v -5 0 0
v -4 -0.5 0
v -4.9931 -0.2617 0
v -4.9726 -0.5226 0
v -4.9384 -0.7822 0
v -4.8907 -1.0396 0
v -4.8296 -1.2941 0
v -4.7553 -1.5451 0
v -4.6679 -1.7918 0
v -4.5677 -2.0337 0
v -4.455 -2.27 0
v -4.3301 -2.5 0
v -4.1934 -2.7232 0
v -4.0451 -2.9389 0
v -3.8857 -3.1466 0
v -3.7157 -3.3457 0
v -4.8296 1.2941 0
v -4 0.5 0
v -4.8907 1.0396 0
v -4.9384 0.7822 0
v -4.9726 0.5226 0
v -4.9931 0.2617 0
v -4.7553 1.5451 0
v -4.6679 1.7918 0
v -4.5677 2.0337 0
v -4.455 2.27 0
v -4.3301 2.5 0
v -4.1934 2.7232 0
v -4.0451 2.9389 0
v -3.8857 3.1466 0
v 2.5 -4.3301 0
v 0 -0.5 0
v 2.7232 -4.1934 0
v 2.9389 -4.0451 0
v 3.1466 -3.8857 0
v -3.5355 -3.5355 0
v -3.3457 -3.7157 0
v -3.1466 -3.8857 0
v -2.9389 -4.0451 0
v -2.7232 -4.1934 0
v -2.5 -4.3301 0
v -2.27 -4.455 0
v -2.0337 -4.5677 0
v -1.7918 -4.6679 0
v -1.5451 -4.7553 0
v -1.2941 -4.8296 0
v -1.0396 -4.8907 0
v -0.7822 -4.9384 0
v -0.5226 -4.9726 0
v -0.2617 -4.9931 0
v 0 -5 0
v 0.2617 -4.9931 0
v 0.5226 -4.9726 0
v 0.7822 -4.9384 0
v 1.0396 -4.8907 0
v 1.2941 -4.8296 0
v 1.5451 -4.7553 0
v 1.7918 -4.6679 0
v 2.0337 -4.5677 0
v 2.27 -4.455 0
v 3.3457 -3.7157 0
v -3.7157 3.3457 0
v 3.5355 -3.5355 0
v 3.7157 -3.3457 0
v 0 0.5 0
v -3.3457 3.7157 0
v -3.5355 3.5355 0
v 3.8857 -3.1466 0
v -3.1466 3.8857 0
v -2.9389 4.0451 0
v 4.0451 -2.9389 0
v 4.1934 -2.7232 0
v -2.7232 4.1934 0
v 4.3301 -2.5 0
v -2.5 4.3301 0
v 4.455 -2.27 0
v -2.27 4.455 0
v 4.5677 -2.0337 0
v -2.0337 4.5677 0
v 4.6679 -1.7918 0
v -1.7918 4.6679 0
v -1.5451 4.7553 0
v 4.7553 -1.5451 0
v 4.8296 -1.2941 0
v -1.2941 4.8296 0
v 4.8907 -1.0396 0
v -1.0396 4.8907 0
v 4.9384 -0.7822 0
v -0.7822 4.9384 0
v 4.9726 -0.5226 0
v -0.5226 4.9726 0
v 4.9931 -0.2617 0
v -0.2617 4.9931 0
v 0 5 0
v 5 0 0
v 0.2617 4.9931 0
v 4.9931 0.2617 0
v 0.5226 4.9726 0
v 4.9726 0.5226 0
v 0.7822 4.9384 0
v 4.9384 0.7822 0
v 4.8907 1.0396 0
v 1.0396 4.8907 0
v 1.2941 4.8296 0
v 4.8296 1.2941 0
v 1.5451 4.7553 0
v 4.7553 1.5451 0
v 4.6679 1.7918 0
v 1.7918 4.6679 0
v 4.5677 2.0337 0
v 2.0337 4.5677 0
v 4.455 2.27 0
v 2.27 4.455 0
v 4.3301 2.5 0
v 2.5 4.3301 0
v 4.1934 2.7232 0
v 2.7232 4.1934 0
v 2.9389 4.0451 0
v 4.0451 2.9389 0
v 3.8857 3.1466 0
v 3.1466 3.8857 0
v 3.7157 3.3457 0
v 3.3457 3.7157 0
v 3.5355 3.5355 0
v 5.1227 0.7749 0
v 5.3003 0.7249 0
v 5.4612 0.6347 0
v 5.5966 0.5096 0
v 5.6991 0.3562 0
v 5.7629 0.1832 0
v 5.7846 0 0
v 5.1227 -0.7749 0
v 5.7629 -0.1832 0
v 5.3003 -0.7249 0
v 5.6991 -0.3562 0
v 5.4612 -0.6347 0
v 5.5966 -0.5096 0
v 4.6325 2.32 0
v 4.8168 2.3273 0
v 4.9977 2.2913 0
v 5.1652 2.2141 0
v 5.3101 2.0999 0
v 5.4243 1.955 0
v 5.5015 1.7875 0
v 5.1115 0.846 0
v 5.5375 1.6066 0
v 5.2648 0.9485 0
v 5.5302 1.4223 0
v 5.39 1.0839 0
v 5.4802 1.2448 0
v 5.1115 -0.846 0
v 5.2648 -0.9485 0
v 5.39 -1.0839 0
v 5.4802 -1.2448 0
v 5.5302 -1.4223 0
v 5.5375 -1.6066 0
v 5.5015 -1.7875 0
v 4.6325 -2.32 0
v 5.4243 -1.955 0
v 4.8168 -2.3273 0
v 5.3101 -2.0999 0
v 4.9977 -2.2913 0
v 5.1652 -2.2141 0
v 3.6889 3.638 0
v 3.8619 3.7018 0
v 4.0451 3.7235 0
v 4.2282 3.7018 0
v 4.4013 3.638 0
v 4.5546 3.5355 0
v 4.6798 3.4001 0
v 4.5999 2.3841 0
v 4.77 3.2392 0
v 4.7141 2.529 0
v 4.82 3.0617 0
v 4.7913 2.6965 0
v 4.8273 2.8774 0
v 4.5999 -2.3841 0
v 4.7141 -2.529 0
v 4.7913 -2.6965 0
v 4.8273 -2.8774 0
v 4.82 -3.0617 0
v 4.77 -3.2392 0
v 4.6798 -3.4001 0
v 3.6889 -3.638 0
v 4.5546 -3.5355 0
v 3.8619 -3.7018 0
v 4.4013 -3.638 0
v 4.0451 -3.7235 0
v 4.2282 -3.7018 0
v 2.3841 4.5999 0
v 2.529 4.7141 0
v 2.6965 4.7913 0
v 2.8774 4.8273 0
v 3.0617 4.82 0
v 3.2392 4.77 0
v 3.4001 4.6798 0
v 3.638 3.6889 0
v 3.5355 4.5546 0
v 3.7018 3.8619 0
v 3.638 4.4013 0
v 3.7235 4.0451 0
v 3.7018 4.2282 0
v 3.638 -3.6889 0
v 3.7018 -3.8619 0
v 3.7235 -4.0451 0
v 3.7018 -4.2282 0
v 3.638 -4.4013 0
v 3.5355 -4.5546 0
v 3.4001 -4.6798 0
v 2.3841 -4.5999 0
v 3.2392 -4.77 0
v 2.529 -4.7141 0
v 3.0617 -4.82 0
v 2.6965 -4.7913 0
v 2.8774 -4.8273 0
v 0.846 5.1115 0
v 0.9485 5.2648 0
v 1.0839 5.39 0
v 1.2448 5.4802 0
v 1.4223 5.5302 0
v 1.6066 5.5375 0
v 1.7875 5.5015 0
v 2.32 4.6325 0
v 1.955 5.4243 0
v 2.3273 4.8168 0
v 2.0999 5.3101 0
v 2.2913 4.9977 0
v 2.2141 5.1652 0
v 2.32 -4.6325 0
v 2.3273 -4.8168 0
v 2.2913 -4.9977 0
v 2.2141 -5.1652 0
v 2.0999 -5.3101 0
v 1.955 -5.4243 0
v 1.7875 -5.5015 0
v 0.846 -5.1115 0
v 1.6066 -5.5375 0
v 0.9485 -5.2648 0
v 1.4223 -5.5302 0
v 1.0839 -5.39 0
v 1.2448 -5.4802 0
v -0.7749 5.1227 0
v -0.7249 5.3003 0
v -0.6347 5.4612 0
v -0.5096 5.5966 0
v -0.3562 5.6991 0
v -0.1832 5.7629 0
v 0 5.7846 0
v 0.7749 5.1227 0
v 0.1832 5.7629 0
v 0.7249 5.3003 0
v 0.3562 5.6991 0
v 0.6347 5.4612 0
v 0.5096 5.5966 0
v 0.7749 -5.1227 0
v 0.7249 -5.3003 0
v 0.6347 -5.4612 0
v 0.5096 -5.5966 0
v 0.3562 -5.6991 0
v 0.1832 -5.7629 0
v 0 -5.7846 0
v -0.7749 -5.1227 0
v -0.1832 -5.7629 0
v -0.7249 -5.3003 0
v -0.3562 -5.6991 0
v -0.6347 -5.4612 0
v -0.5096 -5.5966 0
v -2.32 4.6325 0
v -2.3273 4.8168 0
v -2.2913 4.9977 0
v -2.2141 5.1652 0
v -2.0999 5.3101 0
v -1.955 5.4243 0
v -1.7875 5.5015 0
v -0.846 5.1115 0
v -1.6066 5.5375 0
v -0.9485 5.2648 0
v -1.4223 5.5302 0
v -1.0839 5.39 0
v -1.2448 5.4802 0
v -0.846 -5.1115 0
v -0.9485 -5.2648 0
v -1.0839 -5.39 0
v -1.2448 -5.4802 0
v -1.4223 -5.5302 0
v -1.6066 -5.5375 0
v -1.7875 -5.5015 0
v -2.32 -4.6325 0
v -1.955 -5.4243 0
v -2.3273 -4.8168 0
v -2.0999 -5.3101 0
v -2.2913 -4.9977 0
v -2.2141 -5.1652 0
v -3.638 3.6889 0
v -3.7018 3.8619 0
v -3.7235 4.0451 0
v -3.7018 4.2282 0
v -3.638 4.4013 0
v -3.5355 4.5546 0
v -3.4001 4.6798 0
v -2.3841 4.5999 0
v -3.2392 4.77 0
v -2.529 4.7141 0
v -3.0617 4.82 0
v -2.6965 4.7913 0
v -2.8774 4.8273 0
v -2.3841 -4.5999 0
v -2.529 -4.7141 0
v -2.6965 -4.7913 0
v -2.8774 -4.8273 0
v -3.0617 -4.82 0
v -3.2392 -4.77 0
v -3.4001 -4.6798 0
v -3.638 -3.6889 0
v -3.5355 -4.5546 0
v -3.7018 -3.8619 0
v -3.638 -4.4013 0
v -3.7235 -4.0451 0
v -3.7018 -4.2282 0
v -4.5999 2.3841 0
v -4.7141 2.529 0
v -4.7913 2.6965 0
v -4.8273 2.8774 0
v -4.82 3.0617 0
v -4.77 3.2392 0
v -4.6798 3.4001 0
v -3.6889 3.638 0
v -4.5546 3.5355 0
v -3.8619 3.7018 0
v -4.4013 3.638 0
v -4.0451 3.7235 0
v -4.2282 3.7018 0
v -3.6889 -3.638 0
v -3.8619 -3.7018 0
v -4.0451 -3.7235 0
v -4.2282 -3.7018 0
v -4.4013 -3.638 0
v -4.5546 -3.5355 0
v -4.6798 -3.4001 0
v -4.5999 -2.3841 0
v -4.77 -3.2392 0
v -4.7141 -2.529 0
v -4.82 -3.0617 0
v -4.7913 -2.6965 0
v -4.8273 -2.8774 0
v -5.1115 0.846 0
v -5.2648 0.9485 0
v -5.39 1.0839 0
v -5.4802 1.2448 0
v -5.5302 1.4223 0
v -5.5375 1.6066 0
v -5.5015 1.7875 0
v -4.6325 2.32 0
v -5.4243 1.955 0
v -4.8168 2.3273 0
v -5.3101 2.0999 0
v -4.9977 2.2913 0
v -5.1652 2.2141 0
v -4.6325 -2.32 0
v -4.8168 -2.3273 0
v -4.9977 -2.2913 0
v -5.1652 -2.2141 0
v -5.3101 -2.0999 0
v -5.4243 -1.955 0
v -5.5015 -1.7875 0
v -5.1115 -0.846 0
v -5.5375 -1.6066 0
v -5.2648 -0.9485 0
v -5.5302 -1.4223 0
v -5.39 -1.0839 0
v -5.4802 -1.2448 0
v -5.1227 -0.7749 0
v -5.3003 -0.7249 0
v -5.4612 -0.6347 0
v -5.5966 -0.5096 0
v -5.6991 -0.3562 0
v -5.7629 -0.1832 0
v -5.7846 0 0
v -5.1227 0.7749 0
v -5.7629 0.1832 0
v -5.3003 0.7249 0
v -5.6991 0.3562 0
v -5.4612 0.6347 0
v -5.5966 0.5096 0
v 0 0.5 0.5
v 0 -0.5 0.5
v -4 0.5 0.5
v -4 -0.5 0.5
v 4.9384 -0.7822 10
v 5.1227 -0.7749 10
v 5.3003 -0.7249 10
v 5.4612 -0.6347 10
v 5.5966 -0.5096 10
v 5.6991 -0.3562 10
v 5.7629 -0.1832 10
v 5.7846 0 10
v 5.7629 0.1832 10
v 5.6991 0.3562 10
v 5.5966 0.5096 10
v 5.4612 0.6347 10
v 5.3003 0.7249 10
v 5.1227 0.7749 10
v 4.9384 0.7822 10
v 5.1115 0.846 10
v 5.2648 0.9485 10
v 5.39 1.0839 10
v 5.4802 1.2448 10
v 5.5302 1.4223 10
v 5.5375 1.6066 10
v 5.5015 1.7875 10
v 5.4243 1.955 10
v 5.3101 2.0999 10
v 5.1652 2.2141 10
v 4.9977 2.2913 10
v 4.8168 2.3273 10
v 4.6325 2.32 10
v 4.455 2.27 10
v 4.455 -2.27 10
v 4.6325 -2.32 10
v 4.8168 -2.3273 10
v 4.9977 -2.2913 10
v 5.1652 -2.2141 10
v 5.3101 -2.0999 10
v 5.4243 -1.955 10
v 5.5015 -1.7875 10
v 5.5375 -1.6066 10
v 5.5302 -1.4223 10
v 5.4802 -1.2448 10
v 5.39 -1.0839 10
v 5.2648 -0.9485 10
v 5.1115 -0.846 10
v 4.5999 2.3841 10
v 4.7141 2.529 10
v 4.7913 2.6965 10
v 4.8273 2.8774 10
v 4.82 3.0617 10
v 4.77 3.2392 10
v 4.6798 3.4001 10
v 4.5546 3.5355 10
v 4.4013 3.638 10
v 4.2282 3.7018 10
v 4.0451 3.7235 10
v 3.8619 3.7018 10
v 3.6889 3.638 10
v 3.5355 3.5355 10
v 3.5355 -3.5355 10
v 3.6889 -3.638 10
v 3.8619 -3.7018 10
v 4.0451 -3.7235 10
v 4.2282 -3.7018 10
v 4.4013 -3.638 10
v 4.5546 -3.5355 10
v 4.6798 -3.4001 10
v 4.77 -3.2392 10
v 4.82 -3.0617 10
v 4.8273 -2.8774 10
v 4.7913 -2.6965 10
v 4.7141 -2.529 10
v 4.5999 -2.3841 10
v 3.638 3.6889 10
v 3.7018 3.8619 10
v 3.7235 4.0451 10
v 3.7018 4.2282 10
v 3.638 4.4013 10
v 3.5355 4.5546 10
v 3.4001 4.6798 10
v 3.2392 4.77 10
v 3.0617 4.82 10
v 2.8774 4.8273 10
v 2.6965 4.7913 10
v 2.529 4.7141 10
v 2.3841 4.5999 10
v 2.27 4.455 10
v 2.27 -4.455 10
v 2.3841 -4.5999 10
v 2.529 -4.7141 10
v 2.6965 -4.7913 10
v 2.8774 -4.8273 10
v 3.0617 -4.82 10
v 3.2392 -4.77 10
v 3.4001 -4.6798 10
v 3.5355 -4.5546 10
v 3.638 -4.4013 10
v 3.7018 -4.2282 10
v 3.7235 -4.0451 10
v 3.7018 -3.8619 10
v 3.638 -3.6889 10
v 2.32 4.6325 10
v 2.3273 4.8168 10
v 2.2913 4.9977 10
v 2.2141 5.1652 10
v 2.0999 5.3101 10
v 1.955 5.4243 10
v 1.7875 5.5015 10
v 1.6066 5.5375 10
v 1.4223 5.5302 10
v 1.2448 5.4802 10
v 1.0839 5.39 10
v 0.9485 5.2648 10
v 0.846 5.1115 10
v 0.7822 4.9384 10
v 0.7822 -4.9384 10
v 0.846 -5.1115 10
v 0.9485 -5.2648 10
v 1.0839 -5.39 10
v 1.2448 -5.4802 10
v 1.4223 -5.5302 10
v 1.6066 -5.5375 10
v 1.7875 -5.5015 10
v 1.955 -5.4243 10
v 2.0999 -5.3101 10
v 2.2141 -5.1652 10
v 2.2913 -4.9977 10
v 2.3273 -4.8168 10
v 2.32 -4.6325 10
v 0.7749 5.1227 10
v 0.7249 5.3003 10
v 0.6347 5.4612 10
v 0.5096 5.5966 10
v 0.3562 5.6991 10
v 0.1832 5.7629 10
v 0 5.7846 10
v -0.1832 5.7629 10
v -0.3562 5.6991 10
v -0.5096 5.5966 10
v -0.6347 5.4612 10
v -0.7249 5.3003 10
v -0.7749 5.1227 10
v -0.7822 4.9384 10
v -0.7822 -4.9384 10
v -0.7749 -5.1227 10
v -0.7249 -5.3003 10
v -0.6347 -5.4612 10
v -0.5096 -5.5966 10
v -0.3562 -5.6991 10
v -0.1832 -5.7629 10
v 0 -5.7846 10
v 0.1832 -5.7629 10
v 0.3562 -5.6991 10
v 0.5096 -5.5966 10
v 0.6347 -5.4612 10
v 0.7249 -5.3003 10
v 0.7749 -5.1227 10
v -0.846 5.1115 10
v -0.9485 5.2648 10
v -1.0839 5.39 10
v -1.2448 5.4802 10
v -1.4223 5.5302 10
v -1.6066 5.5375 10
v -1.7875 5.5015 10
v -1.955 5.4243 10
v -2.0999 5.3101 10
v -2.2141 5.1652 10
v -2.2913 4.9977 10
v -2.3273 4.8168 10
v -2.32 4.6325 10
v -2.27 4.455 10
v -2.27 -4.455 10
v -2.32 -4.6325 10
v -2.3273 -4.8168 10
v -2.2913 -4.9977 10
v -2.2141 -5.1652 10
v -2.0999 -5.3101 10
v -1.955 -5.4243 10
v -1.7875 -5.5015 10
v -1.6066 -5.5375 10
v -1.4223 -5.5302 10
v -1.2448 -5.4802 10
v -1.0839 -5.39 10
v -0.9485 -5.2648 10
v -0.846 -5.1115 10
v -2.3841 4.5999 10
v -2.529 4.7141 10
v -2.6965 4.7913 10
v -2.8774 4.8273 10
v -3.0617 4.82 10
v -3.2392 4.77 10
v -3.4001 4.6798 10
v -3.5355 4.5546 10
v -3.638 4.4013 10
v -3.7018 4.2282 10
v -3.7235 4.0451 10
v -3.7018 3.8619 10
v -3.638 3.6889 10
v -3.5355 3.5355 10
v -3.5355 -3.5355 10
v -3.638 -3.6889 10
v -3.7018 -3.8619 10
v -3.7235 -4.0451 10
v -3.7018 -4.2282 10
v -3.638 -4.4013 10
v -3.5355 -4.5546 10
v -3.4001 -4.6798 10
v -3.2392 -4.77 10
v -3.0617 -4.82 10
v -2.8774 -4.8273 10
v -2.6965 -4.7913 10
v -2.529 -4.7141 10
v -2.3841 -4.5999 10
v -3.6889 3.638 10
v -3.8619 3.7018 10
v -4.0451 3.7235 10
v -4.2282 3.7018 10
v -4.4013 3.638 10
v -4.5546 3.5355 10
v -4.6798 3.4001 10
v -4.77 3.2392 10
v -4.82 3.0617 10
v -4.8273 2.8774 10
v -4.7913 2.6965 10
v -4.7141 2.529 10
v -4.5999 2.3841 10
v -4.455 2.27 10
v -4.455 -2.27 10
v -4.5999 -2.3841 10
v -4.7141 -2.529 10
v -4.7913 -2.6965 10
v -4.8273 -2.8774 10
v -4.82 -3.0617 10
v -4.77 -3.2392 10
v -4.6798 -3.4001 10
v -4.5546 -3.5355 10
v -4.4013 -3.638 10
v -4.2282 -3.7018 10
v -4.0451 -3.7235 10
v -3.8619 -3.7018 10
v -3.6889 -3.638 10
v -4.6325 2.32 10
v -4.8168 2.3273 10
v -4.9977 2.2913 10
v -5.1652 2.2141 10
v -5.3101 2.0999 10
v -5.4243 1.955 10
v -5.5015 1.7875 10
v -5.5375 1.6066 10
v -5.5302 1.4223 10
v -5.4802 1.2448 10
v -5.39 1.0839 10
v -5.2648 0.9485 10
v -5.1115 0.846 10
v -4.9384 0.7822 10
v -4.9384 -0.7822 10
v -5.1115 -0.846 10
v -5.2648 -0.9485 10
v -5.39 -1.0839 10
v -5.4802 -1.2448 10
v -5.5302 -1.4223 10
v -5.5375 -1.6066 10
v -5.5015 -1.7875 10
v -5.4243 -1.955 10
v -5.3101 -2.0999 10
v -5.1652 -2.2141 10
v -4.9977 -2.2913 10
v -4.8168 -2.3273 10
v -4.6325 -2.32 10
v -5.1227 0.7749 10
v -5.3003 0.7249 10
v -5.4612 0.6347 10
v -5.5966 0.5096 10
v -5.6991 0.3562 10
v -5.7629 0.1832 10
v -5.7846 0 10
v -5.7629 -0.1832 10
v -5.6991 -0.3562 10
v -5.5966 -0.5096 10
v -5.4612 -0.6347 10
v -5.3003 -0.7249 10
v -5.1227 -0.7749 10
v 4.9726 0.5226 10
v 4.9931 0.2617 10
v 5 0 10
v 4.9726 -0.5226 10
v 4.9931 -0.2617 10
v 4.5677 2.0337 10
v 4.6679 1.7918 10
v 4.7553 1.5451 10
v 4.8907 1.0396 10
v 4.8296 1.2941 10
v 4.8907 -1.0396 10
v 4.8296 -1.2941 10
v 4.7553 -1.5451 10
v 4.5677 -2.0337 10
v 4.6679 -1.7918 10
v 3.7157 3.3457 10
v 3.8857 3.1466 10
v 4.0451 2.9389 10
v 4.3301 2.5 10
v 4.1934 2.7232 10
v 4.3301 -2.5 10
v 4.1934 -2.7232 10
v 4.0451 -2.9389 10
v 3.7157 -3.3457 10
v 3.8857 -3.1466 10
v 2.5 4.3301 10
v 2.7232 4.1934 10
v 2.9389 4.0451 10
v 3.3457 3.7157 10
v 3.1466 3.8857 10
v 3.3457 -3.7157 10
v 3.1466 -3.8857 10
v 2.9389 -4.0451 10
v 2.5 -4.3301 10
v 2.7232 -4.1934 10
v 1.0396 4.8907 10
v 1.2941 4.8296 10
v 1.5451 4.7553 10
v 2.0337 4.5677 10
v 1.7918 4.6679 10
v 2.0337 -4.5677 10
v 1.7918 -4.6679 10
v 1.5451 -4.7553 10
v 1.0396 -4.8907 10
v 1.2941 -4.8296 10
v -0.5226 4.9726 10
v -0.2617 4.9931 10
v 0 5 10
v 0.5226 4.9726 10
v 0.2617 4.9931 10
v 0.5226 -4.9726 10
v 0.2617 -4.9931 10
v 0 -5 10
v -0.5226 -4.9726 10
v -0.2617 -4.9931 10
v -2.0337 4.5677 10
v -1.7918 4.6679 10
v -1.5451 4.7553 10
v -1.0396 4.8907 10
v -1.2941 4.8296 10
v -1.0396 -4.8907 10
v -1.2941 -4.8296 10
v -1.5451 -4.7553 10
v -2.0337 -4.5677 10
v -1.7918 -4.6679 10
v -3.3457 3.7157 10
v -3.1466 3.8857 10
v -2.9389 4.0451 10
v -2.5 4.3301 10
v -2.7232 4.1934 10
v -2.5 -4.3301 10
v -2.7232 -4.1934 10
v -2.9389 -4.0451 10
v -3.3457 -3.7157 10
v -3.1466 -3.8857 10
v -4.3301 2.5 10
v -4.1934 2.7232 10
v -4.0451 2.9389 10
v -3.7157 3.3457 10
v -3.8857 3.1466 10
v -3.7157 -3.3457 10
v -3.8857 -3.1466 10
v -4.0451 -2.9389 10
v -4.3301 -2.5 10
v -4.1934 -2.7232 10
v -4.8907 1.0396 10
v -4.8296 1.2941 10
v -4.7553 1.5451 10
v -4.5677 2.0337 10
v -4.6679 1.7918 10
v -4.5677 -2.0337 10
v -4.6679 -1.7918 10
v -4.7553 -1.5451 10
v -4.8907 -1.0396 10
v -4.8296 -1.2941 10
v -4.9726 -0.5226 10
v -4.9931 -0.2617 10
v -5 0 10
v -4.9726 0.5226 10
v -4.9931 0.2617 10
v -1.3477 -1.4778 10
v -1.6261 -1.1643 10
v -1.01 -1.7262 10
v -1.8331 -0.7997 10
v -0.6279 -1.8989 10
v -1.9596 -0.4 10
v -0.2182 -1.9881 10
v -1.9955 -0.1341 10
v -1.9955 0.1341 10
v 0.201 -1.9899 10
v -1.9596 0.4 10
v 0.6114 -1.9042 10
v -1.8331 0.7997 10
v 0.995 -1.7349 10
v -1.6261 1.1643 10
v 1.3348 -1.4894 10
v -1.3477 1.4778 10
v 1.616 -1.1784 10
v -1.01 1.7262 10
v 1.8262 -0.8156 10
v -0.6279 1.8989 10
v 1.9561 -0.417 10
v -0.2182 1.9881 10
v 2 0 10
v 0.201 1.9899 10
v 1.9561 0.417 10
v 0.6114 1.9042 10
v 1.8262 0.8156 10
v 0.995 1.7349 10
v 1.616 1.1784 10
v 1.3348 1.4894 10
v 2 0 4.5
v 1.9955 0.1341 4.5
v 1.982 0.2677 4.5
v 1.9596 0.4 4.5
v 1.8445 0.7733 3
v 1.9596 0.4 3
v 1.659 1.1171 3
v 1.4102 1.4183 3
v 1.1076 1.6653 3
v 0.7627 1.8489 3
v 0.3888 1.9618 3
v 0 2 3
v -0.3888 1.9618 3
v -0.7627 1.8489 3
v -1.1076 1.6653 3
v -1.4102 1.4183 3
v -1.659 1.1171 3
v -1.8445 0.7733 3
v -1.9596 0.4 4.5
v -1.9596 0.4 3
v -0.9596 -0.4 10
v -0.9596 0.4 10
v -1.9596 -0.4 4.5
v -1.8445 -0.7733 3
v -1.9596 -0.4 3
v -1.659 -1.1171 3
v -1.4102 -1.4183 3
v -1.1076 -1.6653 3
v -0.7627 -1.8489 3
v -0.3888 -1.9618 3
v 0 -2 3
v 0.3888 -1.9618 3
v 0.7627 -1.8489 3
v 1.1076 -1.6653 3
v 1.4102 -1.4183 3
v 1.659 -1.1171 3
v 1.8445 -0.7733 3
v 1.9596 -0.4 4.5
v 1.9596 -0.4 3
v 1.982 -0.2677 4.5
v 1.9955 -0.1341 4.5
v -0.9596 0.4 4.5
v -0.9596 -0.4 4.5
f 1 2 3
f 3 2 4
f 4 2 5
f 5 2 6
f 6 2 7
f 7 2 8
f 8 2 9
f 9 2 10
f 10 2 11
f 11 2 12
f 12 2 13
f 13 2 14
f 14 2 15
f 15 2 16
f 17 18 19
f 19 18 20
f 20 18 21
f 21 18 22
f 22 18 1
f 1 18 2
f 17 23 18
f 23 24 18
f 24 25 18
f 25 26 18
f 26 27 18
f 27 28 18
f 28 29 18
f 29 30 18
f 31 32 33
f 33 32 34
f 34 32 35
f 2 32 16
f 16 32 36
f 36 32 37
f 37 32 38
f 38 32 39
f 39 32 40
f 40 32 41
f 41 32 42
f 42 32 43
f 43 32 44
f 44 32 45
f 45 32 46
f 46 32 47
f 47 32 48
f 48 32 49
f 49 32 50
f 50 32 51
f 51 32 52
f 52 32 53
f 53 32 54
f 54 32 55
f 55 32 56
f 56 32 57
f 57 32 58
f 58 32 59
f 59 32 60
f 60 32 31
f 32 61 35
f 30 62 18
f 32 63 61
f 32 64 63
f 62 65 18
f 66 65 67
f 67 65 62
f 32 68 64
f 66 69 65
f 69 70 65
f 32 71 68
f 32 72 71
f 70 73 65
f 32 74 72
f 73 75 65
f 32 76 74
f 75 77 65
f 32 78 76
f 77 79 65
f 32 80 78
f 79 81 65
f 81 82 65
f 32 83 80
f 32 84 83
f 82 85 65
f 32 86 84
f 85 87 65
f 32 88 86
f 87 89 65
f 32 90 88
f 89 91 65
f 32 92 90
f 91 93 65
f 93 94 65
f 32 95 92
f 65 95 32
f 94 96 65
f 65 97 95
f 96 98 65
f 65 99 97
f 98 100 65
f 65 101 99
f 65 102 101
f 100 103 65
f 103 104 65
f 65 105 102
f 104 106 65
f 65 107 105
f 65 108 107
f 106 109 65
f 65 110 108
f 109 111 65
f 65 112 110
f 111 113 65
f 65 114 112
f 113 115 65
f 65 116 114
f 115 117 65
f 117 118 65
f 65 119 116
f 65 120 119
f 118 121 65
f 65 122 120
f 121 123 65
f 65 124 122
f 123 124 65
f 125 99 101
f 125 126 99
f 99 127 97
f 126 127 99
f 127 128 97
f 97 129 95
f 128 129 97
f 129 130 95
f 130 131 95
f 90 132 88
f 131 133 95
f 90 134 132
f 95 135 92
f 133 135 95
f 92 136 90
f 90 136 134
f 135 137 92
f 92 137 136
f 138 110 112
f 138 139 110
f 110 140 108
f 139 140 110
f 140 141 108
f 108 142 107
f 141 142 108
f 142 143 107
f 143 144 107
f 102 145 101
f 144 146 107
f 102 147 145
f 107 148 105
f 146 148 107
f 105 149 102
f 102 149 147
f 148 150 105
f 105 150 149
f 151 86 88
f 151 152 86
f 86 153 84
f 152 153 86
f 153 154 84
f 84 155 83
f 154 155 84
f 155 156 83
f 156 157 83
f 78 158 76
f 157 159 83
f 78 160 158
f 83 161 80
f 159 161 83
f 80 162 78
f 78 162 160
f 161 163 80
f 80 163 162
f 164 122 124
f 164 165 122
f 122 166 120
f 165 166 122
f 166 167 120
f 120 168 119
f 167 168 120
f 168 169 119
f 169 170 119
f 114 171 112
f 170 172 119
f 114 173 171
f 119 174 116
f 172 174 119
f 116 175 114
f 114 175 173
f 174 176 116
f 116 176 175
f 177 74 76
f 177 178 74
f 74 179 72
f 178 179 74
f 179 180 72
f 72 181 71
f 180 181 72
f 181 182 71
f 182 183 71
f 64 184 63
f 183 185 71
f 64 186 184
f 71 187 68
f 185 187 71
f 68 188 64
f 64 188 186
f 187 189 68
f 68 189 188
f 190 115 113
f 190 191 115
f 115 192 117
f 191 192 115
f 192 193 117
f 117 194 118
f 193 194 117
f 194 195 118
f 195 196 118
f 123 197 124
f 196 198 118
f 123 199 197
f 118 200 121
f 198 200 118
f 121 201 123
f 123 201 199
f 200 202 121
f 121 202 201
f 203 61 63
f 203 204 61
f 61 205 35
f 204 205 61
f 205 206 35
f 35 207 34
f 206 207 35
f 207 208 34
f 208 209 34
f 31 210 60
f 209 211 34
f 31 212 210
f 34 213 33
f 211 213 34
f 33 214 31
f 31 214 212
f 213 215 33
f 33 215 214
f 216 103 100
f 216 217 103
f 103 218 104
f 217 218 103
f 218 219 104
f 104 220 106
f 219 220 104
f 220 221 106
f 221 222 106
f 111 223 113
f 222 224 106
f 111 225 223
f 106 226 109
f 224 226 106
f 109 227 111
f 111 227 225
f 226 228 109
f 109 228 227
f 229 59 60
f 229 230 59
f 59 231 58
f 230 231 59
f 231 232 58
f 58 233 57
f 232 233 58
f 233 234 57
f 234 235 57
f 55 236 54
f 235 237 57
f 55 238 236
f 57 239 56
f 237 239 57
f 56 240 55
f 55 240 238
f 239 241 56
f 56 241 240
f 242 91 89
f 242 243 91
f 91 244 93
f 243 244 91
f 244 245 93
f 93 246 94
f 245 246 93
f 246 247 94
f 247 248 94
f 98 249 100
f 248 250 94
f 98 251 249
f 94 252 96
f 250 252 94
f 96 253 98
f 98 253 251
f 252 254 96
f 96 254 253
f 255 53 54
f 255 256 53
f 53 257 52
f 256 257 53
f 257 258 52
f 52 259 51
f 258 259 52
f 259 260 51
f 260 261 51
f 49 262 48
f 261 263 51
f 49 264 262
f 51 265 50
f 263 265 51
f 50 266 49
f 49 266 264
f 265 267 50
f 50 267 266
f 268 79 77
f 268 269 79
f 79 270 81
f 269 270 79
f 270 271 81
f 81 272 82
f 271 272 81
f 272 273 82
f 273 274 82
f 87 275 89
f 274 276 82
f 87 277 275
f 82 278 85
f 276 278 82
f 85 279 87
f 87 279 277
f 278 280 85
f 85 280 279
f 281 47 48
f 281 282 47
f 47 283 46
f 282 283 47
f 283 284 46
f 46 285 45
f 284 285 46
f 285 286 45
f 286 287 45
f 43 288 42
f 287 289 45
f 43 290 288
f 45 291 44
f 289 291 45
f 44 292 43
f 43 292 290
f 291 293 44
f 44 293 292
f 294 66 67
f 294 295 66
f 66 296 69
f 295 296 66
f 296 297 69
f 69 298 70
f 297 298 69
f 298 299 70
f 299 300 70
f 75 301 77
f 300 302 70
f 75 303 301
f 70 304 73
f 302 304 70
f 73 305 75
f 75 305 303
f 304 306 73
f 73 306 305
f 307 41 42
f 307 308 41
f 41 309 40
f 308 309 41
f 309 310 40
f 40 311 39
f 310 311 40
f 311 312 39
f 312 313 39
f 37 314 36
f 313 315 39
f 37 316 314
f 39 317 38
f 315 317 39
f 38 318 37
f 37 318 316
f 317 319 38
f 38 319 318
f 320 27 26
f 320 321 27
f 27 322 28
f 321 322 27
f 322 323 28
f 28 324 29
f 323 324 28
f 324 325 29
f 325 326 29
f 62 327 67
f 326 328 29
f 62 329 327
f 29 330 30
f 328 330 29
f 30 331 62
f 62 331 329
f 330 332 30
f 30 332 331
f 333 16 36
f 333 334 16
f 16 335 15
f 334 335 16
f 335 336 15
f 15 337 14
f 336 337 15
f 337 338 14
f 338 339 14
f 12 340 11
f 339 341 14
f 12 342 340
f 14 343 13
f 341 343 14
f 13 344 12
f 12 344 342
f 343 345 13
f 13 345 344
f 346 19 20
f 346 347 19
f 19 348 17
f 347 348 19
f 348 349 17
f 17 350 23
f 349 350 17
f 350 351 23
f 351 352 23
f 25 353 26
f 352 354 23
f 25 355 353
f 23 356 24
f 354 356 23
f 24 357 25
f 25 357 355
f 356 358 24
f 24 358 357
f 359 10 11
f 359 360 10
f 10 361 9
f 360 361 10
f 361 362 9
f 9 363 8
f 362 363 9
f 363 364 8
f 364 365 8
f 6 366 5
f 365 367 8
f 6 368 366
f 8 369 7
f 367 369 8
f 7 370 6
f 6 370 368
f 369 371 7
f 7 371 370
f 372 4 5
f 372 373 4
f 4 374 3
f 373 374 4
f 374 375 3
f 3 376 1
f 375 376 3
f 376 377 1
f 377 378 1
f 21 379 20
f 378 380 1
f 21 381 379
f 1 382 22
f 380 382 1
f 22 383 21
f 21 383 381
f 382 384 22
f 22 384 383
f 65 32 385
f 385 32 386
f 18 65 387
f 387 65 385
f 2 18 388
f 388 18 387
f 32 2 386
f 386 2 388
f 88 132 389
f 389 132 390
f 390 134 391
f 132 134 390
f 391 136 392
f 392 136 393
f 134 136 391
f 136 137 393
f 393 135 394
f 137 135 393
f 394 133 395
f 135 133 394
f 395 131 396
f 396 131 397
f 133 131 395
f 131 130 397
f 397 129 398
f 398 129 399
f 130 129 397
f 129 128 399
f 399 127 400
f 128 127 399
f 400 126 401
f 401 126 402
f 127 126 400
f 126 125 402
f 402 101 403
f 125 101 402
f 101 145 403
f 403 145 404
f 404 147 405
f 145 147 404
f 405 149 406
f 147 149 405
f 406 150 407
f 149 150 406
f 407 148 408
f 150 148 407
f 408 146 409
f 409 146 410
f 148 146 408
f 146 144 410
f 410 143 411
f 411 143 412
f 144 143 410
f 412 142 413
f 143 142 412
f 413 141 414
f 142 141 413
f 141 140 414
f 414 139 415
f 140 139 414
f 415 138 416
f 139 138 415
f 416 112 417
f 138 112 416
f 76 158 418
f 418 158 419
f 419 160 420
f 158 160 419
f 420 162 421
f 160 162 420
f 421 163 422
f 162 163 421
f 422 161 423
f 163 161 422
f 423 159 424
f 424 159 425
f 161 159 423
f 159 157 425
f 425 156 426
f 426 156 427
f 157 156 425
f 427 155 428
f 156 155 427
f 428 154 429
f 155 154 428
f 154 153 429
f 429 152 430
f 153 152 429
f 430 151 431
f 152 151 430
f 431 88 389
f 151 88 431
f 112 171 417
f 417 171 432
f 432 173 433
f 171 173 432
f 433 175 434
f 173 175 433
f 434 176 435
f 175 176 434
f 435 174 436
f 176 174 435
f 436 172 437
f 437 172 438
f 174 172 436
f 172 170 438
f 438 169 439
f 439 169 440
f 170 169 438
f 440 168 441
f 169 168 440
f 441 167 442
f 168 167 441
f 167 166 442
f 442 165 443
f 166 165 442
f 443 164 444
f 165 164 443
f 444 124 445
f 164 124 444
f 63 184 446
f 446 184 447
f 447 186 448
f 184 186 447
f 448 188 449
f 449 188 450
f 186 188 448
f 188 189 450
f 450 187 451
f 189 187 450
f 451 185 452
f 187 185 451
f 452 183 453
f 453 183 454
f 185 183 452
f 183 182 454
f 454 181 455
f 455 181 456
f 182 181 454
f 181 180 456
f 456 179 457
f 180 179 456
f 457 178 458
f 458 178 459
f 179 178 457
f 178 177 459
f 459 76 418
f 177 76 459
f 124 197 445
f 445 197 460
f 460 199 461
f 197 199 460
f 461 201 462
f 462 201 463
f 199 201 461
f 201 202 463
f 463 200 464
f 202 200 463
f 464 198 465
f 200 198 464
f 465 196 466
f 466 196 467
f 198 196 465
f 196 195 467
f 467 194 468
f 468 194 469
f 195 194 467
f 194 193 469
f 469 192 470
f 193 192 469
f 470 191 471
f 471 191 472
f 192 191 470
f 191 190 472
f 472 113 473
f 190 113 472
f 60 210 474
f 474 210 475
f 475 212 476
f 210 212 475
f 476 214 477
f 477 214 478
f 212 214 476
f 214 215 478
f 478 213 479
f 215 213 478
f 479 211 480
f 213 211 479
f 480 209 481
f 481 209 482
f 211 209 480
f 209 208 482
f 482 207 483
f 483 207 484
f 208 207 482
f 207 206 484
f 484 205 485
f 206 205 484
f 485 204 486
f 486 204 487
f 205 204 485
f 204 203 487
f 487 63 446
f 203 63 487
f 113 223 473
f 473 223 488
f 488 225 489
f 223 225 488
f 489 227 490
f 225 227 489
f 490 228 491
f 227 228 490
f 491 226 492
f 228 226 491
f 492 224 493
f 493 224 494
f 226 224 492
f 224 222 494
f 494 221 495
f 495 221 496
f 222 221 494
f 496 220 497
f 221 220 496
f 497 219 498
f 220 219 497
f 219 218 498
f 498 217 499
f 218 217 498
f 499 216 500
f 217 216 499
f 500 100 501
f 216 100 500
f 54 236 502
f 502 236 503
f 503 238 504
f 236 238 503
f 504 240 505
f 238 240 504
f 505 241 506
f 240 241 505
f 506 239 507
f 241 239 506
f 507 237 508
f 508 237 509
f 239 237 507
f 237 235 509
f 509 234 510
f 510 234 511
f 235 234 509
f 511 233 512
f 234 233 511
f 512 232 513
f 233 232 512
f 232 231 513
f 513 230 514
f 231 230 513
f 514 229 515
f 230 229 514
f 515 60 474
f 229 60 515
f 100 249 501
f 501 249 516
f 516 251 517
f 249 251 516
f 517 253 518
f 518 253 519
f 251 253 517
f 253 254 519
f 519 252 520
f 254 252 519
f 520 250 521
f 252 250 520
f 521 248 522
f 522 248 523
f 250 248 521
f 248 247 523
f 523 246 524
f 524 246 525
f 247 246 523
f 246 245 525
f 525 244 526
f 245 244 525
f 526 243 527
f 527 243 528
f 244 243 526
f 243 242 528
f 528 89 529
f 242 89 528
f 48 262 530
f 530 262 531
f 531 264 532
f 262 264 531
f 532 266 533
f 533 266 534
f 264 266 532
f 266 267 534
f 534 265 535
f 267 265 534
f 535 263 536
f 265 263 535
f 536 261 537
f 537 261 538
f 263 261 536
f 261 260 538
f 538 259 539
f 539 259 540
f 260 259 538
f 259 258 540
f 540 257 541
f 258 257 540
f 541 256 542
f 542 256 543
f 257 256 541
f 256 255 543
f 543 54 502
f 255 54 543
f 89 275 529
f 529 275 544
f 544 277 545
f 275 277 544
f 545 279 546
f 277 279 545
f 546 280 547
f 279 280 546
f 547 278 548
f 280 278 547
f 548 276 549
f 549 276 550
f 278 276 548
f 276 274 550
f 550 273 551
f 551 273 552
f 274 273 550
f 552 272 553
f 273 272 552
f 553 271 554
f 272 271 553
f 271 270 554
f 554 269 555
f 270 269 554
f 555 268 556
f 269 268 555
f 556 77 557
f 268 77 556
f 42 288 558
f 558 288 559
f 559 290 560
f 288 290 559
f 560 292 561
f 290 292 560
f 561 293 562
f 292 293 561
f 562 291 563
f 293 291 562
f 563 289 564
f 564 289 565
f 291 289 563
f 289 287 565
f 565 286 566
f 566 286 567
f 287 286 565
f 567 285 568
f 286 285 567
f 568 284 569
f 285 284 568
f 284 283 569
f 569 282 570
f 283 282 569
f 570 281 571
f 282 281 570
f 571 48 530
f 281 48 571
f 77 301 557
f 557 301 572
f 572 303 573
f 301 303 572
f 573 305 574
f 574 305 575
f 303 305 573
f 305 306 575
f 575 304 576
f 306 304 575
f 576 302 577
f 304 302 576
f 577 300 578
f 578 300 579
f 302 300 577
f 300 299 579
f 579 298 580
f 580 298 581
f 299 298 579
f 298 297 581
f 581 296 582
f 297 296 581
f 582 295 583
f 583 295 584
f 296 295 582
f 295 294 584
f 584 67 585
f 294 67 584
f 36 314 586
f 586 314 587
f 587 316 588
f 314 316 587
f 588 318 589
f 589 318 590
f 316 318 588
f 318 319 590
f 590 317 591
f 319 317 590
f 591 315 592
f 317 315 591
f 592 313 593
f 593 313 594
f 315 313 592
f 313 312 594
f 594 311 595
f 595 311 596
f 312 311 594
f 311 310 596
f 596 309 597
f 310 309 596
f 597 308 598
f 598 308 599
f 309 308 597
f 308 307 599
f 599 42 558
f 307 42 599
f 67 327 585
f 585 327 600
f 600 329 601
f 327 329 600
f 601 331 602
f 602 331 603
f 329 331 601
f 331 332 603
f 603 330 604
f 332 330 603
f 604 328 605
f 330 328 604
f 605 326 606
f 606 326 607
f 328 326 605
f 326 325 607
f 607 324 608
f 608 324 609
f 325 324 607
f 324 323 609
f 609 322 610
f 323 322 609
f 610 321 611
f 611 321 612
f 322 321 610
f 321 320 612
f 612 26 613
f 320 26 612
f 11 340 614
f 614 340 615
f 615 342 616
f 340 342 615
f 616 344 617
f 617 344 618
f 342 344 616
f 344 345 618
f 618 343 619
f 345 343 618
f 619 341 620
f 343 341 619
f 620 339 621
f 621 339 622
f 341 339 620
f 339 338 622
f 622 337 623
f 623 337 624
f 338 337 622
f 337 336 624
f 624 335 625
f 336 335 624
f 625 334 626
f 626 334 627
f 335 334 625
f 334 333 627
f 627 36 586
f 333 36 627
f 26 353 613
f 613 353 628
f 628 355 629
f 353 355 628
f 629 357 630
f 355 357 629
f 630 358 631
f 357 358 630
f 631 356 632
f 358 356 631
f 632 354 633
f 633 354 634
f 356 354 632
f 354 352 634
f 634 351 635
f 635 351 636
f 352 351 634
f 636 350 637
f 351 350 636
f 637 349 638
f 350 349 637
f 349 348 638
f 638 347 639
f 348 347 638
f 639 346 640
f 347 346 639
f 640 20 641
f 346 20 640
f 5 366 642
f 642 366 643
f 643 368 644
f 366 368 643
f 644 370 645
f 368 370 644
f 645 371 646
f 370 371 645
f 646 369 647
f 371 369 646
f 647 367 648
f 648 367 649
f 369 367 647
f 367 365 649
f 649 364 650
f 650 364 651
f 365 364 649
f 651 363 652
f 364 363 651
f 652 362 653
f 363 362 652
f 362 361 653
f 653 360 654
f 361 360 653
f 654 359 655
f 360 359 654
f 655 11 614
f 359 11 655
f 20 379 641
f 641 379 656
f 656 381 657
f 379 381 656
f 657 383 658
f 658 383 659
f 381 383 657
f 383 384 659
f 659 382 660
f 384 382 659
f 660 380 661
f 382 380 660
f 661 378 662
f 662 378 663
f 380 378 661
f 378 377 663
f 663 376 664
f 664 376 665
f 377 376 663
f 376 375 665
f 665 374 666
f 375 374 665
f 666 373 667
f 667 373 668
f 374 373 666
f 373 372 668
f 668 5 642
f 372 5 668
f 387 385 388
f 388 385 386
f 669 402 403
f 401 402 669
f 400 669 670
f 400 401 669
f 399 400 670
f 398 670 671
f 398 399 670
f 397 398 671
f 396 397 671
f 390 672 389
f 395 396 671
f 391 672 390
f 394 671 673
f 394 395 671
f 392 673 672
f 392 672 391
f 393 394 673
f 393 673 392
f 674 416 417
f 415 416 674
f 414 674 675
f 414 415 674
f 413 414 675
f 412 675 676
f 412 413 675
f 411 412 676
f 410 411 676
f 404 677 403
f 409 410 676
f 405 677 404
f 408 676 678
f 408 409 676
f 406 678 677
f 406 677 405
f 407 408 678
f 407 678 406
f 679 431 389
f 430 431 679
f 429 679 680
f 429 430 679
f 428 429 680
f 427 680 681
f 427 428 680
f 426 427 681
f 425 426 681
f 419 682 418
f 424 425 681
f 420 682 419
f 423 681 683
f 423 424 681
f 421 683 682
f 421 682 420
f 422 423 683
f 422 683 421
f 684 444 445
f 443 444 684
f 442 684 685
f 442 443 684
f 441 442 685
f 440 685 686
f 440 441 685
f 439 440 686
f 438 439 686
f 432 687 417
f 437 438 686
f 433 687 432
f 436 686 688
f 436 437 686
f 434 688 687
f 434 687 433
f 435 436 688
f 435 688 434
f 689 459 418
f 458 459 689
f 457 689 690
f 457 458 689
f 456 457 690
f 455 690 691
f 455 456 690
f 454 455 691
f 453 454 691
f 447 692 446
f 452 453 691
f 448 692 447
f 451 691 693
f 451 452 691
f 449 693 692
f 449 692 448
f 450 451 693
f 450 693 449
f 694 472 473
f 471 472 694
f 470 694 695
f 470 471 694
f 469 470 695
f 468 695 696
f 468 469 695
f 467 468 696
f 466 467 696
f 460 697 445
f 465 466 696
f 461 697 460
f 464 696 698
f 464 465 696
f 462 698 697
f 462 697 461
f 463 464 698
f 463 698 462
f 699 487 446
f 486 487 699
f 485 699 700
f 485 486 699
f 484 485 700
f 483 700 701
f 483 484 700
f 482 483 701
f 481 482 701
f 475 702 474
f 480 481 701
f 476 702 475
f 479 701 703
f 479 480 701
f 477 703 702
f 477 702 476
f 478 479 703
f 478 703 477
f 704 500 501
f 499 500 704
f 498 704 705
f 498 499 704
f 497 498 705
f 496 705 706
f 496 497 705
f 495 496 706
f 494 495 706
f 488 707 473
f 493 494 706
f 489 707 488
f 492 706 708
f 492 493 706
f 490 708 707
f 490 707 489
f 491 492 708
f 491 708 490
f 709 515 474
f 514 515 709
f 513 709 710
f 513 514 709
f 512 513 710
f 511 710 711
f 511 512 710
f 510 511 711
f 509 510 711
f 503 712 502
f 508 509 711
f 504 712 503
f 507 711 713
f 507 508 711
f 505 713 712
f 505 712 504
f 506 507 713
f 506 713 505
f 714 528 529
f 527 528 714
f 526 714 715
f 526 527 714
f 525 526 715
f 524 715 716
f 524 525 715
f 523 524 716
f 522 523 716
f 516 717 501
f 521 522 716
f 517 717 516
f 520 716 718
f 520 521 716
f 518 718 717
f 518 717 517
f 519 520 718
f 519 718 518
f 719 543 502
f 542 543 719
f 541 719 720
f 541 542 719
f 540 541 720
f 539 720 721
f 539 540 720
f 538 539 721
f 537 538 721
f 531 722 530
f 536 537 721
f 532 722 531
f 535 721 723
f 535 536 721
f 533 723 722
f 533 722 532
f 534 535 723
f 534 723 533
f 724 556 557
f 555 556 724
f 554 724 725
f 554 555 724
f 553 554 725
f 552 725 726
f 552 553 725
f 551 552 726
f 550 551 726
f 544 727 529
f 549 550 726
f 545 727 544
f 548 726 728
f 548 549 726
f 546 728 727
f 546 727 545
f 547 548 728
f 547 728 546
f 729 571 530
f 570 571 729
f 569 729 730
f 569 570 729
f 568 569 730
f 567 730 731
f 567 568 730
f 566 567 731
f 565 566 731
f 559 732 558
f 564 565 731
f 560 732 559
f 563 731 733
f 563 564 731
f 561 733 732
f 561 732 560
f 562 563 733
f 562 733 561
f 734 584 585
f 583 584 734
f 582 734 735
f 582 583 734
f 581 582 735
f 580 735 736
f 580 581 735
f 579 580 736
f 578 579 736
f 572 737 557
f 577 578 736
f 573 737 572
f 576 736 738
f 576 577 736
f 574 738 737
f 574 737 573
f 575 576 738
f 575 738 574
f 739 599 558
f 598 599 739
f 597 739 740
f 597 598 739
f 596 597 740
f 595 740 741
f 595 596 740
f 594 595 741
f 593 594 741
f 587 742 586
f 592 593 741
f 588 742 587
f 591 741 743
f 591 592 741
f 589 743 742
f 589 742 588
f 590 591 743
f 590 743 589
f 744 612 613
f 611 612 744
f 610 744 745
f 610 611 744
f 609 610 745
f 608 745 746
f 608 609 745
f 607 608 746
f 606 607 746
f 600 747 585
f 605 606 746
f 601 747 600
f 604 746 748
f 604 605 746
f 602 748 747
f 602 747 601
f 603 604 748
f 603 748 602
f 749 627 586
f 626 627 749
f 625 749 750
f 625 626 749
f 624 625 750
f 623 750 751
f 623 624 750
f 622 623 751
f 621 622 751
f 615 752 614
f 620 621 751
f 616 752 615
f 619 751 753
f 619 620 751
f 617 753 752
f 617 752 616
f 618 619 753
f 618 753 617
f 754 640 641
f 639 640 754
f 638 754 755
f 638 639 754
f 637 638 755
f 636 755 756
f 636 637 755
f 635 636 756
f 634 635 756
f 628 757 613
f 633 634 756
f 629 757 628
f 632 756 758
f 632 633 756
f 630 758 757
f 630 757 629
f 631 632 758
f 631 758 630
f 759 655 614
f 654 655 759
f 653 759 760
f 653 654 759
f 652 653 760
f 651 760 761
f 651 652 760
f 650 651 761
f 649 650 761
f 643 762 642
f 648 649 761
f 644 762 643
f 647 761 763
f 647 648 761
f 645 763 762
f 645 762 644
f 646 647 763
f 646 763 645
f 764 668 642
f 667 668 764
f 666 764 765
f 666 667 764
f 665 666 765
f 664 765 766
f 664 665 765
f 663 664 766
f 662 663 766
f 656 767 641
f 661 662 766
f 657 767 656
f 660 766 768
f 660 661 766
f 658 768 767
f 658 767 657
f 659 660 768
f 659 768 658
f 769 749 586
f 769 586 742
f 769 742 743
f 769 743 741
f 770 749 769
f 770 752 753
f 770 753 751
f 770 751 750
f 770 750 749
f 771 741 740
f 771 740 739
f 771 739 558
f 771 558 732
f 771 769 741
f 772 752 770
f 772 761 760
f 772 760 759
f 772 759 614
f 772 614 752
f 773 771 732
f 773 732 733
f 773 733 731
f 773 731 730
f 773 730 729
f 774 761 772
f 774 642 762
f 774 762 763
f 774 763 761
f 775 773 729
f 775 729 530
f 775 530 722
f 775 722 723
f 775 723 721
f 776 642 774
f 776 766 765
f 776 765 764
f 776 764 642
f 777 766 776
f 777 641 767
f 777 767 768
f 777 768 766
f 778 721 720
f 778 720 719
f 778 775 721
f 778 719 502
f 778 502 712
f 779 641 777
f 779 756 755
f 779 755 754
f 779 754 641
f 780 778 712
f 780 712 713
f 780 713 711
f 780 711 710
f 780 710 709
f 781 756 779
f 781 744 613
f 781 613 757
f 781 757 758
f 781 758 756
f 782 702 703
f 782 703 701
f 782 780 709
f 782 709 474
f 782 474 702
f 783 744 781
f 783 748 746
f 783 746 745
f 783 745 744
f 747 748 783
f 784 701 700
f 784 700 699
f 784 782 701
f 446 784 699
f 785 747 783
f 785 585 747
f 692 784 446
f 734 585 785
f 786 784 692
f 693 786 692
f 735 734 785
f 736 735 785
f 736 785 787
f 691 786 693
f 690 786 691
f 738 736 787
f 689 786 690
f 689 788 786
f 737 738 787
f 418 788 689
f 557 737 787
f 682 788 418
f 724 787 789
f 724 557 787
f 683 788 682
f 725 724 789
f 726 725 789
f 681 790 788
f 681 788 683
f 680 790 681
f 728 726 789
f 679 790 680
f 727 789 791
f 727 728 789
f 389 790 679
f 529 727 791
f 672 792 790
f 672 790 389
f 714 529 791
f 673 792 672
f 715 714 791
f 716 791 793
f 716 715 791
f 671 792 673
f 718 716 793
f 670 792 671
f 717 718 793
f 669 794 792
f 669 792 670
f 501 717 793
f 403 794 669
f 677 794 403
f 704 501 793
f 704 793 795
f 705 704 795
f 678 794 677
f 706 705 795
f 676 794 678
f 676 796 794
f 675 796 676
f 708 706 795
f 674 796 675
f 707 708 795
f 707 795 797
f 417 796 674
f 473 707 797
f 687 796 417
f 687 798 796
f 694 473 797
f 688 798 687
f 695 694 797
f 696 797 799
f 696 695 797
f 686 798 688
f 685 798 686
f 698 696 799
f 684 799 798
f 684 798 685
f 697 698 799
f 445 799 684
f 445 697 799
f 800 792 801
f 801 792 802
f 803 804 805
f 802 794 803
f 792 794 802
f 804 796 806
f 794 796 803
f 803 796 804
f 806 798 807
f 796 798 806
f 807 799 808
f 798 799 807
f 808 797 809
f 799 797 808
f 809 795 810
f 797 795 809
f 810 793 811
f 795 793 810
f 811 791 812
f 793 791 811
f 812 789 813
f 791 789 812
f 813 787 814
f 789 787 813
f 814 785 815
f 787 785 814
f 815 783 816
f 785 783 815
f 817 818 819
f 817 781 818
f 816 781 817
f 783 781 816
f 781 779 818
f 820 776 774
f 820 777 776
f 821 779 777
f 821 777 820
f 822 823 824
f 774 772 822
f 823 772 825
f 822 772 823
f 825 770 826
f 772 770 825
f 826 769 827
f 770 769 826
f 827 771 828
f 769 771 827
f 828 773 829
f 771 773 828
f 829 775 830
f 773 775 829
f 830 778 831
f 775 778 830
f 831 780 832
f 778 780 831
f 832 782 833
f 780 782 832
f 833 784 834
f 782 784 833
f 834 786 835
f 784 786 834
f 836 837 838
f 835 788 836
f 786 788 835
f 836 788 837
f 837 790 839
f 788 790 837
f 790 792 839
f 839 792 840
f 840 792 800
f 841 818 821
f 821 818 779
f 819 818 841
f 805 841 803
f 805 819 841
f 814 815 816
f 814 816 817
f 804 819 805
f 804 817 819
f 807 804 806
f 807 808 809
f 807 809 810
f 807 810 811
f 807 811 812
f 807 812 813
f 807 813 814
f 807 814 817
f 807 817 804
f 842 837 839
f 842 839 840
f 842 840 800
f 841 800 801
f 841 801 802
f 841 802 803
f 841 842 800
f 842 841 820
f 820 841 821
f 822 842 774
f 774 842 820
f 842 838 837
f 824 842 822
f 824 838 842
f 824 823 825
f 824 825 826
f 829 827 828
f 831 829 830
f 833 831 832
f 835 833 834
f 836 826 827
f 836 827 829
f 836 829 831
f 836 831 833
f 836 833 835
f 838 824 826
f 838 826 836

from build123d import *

# Parameters (mm, degrees)
SKETCH_R           = 5
PAD_DEPTH          = 10
PAD001_DEPTH       = 10
POLARPATTERN_COUNT = 20
SKETCH002_R        = 2
POCKET_DEPTH       = 7
PAD002_DEPTH       = 1.5
PAD003_DEPTH       = 5.5
SKETCH005_W        = 4
SKETCH005_H        = 1
POCKET001_DEPTH    = 0.5


with BuildPart() as part:
    # Sketch → Pad (new body)
    with BuildSketch(Plane.XY):
        Circle(SKETCH_R)
    extrude(amount=PAD_DEPTH)

    # Sketch001 → Pad001 (join)
    with BuildSketch(Plane.XY):
        with BuildLine():
            ThreePointArc((0.782172, 4.938442), (0.392295, 4.984587), (0, 5))
            ThreePointArc((0, 5), (-0.392295, 4.984587), (-0.782172, 4.938442))
            ThreePointArc((0.782172, 4.938442), (0, 5.784591), (-0.782172, 4.938442))
        make_face()
    pad001 = extrude(amount=PAD001_DEPTH)

    # PolarPattern: Pad001 ×20 about axis
    polarpattern_axis = Axis((0, 0, 0), (0, 0, 1))
    for i in range(1, POLARPATTERN_COUNT):
        add(pad001.rotate(polarpattern_axis, i * 360 / POLARPATTERN_COUNT))

    # Sketch002 (on Face62 of PolarPattern) → Pocket (cut)
    with BuildSketch(Plane.XY.offset(10)):
        Circle(SKETCH002_R)
    extrude(amount=-POCKET_DEPTH, mode=Mode.SUBTRACT)

    # Sketch003 (on Face64 of Pocket) → Pad002 (join)
    with BuildSketch(Plane.XY.offset(3)):
        with BuildLine():
            Line((-1.959592, 0.4), (1.959592, 0.4))
            ThreePointArc((1.959592, -0.4), (2, 0), (1.959592, 0.4))
            Line((1.959592, -0.4), (-1.959592, -0.4))
            ThreePointArc((-1.959592, 0.4), (-2, 0), (-1.959592, -0.4))
        make_face()
    extrude(amount=PAD002_DEPTH)

    # Sketch004 (on Face64 of Pad002) → Pad003 (join)
    with BuildSketch(Plane.XY.offset(4.5)):
        with BuildLine():
            Line((-1.959592, -0.4), (-0.959592, -0.4))
            Line((-0.959592, -0.4), (-0.959592, 0.4))
            Line((-0.959592, 0.4), (-1.959592, 0.4))
            ThreePointArc((-1.959592, 0.4), (-2, 0), (-1.959592, -0.4))
        make_face()
    extrude(amount=PAD003_DEPTH)

    # Sketch005 (on Face1 of Pad003) → Pocket001 (cut)
    with BuildSketch(Plane(origin=(0, 0, 0), x_dir=(1, 0, 0), z_dir=(0, 0, -1))):
        with Locations((-2, 0)):
            Rectangle(SKETCH005_W, SKETCH005_H)
    extrude(amount=-POCKET001_DEPTH, mode=Mode.SUBTRACT)


solid = part.part
